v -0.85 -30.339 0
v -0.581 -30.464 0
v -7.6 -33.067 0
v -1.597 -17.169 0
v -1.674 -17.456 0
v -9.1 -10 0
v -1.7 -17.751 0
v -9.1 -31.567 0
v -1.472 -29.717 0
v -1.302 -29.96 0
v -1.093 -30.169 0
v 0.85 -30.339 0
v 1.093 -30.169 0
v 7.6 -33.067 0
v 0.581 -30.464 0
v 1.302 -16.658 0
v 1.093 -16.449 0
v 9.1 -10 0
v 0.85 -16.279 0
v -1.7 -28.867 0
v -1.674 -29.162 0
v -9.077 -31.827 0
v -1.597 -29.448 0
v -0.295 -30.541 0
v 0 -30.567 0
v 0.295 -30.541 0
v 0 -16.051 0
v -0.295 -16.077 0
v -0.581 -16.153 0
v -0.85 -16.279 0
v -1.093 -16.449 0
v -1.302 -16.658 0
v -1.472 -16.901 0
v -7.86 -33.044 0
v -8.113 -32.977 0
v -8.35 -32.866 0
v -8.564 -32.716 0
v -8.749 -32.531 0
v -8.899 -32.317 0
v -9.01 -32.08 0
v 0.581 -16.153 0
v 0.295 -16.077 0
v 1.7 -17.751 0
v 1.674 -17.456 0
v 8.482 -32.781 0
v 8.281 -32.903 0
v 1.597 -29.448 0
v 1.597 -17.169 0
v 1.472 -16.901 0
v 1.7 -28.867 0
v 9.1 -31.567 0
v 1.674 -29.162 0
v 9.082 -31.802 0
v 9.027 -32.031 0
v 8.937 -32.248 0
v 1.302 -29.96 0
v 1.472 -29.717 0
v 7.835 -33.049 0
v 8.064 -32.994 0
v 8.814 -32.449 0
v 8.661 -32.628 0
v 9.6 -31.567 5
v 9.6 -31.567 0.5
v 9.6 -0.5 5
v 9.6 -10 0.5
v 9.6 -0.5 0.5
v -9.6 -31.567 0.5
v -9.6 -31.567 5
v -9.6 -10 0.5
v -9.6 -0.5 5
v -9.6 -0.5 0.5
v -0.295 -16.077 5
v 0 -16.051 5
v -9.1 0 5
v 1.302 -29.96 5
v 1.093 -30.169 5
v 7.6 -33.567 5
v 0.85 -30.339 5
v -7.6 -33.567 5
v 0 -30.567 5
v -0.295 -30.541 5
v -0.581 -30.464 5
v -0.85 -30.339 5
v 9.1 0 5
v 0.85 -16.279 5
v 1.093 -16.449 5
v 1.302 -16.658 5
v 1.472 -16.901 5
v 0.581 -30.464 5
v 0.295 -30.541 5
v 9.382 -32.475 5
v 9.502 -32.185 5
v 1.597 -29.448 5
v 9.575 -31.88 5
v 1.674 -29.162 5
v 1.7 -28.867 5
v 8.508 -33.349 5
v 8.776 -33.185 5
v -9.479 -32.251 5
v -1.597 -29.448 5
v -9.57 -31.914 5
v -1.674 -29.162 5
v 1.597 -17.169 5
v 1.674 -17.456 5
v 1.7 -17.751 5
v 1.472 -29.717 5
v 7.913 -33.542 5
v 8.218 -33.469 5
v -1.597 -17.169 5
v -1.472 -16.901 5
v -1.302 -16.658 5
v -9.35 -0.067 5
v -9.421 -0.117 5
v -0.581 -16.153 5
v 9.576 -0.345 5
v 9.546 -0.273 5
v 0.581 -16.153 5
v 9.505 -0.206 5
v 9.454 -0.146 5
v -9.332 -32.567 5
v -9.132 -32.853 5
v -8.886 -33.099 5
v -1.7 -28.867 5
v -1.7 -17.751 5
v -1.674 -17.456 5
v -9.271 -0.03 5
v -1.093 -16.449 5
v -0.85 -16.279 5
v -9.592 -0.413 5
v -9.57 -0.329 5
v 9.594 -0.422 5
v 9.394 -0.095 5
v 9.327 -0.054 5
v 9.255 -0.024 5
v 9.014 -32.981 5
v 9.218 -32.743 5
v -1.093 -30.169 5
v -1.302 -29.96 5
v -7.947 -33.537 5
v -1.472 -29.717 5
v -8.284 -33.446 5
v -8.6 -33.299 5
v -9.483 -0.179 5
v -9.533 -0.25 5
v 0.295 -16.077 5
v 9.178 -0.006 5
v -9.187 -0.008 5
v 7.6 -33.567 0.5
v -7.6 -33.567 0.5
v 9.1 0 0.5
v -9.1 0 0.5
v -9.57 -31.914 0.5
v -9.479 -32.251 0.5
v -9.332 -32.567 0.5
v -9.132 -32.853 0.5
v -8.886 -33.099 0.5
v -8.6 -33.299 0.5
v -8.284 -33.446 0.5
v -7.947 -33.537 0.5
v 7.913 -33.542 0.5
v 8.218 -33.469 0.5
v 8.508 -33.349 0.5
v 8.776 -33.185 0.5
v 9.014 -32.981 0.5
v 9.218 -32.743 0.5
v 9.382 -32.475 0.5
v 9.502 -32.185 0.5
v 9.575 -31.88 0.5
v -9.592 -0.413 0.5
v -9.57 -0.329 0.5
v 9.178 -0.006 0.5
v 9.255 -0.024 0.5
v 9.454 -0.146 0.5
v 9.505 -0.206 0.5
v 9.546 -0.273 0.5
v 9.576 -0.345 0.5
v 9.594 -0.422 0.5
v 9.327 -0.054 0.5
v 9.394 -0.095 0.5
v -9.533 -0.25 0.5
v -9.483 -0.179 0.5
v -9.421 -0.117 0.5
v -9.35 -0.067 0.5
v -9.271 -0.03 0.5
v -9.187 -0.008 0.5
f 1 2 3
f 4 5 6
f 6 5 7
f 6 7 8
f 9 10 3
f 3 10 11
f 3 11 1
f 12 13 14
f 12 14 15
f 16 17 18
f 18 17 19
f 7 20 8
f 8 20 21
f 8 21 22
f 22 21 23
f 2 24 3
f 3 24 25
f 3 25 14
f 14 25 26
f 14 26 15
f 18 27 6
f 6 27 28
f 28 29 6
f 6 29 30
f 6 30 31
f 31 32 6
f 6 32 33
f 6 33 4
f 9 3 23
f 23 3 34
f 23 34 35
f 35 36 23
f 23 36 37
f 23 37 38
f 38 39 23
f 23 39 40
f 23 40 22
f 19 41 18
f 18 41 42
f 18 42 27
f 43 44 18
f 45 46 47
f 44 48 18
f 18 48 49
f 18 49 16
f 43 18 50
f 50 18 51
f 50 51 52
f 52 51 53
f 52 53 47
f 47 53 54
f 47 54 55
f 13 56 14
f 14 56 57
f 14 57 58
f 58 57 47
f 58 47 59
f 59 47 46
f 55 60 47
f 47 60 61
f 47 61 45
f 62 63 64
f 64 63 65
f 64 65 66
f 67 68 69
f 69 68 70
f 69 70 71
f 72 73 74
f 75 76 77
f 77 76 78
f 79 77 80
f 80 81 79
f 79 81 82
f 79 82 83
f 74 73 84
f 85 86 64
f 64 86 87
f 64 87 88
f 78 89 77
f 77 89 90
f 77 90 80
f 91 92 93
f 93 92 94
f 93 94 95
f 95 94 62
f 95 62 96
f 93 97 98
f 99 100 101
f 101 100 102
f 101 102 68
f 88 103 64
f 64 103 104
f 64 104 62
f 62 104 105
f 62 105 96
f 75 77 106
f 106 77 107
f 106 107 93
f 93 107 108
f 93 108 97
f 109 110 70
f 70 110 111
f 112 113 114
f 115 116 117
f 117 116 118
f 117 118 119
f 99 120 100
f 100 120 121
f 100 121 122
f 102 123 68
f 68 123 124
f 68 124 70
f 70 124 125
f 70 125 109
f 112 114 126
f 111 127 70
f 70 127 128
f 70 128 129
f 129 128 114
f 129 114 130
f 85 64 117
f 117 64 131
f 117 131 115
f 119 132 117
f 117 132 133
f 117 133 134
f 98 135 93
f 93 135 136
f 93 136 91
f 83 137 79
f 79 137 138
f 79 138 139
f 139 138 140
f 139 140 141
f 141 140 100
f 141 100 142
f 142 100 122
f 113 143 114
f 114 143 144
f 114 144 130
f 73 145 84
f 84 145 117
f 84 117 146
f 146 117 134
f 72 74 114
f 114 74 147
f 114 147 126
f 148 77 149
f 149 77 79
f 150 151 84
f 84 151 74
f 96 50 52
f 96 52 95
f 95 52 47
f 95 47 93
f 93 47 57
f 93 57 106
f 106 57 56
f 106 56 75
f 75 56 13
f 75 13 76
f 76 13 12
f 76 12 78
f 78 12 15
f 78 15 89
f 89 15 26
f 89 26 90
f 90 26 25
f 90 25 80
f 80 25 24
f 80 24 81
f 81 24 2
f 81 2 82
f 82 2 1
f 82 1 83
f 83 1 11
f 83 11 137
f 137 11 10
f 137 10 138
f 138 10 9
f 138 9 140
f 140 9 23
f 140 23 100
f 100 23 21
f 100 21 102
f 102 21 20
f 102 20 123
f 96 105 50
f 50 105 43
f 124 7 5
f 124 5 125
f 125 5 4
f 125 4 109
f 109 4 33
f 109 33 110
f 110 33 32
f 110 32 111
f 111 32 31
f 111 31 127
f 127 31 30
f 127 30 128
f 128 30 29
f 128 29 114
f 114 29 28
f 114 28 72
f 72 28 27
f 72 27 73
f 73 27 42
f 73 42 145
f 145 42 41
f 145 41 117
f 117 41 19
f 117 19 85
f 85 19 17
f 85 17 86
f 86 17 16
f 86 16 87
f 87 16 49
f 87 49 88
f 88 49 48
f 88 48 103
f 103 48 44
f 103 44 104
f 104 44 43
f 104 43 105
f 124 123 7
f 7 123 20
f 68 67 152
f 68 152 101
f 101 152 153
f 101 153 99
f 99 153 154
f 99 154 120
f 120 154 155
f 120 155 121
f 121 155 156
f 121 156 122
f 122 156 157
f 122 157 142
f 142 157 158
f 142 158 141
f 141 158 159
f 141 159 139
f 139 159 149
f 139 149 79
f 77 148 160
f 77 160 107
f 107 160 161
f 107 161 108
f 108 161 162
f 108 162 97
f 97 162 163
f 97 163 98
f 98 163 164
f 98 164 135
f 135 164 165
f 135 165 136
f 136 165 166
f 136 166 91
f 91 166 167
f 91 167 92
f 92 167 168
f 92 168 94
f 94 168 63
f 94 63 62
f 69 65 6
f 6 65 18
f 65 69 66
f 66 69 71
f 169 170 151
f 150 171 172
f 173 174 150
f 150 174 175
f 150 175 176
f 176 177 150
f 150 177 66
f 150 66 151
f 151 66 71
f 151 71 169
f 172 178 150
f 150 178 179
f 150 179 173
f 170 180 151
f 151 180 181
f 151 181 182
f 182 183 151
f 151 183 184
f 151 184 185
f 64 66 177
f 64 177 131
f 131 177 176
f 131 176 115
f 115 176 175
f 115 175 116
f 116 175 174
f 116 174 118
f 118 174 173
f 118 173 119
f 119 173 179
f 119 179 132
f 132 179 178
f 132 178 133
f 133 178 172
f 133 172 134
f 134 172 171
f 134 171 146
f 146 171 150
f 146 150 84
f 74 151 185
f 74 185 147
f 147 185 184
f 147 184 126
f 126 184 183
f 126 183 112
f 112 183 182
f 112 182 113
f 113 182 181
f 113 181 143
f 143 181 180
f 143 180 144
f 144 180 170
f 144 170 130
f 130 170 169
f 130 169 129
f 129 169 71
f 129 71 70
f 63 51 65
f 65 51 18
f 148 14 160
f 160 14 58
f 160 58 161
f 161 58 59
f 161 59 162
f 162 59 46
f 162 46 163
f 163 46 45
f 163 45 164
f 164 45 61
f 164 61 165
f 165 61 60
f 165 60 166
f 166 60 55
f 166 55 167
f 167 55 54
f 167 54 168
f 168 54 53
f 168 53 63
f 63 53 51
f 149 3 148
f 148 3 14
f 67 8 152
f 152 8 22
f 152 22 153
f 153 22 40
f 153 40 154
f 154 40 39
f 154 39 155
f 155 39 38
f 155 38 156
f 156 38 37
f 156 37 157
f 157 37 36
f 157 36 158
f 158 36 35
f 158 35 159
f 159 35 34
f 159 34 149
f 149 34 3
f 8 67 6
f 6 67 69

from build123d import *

# Parameters (mm, degrees)
SKETCH1_W           = 19.2
SKETCH1_H           = 33.566975924
BOSS_EXTRUDE1_DEPTH = 5
FILLET1_R           = 2
SKETCH2_W           = 19.2
SKETCH2_H           = 10
CUT_EXTRUDE1_DEPTH  = 0.5
FILLET2_R           = 0.5
CHAMFER1_SIZE       = 0.5


with BuildPart() as part:
    # Sketch1 → Boss-Extrude1 (new body)
    with BuildSketch(Plane.XY):
        with Locations((0, -16.783487962)):
            Rectangle(SKETCH1_W, SKETCH1_H)
        with BuildLine():
            Line((-1.7, -28.866975924), (-1.7, -17.750874329))
            ThreePointArc((-1.7, -17.750874329), (0, -16.050874329), (1.7, -17.750874329))
            Line((1.7, -17.750874329), (1.7, -28.866975924))
            ThreePointArc((1.7, -28.866975924), (0, -30.566975924), (-1.7, -28.866975924))
        make_face(mode=Mode.SUBTRACT)
    extrude(amount=BOSS_EXTRUDE1_DEPTH)

    # Fillet1
    fillet1_edges = [part.edges().sort_by_distance(p)[0] for p in [
        (-9.6, -33.566975924, 2.5),
        (9.6, -33.566975924, 2.5),
    ]]
    fillet(fillet1_edges, radius=FILLET1_R)

    # Sketch2 → Cut-Extrude1 (cut)
    with BuildSketch(Plane.XY):
        with Locations((0, -5)):
            Rectangle(SKETCH2_W, SKETCH2_H)
    extrude(amount=CUT_EXTRUDE1_DEPTH, mode=Mode.SUBTRACT)

    # Fillet2
    fillet2_edges = [part.edges().sort_by_distance(p)[0] for p in [
        (-9.6, 0, 2.75),
        (9.6, 0, 2.75),
    ]]
    fillet(fillet2_edges, radius=FILLET2_R)

    # Chamfer1
    chamfer1_edges = [part.edges().sort_by_distance(p)[0] for p in [
        (-9.6, -20.783487962, 0),
        (-9.014213562, -32.981189486, 0),
        (0, -33.566975924, 0),
        (9.014213562, -32.981189486, 0),
        (9.6, -20.783487962, 0),
    ]]
    chamfer(chamfer1_edges, length=CHAMFER1_SIZE)


solid = part.part
